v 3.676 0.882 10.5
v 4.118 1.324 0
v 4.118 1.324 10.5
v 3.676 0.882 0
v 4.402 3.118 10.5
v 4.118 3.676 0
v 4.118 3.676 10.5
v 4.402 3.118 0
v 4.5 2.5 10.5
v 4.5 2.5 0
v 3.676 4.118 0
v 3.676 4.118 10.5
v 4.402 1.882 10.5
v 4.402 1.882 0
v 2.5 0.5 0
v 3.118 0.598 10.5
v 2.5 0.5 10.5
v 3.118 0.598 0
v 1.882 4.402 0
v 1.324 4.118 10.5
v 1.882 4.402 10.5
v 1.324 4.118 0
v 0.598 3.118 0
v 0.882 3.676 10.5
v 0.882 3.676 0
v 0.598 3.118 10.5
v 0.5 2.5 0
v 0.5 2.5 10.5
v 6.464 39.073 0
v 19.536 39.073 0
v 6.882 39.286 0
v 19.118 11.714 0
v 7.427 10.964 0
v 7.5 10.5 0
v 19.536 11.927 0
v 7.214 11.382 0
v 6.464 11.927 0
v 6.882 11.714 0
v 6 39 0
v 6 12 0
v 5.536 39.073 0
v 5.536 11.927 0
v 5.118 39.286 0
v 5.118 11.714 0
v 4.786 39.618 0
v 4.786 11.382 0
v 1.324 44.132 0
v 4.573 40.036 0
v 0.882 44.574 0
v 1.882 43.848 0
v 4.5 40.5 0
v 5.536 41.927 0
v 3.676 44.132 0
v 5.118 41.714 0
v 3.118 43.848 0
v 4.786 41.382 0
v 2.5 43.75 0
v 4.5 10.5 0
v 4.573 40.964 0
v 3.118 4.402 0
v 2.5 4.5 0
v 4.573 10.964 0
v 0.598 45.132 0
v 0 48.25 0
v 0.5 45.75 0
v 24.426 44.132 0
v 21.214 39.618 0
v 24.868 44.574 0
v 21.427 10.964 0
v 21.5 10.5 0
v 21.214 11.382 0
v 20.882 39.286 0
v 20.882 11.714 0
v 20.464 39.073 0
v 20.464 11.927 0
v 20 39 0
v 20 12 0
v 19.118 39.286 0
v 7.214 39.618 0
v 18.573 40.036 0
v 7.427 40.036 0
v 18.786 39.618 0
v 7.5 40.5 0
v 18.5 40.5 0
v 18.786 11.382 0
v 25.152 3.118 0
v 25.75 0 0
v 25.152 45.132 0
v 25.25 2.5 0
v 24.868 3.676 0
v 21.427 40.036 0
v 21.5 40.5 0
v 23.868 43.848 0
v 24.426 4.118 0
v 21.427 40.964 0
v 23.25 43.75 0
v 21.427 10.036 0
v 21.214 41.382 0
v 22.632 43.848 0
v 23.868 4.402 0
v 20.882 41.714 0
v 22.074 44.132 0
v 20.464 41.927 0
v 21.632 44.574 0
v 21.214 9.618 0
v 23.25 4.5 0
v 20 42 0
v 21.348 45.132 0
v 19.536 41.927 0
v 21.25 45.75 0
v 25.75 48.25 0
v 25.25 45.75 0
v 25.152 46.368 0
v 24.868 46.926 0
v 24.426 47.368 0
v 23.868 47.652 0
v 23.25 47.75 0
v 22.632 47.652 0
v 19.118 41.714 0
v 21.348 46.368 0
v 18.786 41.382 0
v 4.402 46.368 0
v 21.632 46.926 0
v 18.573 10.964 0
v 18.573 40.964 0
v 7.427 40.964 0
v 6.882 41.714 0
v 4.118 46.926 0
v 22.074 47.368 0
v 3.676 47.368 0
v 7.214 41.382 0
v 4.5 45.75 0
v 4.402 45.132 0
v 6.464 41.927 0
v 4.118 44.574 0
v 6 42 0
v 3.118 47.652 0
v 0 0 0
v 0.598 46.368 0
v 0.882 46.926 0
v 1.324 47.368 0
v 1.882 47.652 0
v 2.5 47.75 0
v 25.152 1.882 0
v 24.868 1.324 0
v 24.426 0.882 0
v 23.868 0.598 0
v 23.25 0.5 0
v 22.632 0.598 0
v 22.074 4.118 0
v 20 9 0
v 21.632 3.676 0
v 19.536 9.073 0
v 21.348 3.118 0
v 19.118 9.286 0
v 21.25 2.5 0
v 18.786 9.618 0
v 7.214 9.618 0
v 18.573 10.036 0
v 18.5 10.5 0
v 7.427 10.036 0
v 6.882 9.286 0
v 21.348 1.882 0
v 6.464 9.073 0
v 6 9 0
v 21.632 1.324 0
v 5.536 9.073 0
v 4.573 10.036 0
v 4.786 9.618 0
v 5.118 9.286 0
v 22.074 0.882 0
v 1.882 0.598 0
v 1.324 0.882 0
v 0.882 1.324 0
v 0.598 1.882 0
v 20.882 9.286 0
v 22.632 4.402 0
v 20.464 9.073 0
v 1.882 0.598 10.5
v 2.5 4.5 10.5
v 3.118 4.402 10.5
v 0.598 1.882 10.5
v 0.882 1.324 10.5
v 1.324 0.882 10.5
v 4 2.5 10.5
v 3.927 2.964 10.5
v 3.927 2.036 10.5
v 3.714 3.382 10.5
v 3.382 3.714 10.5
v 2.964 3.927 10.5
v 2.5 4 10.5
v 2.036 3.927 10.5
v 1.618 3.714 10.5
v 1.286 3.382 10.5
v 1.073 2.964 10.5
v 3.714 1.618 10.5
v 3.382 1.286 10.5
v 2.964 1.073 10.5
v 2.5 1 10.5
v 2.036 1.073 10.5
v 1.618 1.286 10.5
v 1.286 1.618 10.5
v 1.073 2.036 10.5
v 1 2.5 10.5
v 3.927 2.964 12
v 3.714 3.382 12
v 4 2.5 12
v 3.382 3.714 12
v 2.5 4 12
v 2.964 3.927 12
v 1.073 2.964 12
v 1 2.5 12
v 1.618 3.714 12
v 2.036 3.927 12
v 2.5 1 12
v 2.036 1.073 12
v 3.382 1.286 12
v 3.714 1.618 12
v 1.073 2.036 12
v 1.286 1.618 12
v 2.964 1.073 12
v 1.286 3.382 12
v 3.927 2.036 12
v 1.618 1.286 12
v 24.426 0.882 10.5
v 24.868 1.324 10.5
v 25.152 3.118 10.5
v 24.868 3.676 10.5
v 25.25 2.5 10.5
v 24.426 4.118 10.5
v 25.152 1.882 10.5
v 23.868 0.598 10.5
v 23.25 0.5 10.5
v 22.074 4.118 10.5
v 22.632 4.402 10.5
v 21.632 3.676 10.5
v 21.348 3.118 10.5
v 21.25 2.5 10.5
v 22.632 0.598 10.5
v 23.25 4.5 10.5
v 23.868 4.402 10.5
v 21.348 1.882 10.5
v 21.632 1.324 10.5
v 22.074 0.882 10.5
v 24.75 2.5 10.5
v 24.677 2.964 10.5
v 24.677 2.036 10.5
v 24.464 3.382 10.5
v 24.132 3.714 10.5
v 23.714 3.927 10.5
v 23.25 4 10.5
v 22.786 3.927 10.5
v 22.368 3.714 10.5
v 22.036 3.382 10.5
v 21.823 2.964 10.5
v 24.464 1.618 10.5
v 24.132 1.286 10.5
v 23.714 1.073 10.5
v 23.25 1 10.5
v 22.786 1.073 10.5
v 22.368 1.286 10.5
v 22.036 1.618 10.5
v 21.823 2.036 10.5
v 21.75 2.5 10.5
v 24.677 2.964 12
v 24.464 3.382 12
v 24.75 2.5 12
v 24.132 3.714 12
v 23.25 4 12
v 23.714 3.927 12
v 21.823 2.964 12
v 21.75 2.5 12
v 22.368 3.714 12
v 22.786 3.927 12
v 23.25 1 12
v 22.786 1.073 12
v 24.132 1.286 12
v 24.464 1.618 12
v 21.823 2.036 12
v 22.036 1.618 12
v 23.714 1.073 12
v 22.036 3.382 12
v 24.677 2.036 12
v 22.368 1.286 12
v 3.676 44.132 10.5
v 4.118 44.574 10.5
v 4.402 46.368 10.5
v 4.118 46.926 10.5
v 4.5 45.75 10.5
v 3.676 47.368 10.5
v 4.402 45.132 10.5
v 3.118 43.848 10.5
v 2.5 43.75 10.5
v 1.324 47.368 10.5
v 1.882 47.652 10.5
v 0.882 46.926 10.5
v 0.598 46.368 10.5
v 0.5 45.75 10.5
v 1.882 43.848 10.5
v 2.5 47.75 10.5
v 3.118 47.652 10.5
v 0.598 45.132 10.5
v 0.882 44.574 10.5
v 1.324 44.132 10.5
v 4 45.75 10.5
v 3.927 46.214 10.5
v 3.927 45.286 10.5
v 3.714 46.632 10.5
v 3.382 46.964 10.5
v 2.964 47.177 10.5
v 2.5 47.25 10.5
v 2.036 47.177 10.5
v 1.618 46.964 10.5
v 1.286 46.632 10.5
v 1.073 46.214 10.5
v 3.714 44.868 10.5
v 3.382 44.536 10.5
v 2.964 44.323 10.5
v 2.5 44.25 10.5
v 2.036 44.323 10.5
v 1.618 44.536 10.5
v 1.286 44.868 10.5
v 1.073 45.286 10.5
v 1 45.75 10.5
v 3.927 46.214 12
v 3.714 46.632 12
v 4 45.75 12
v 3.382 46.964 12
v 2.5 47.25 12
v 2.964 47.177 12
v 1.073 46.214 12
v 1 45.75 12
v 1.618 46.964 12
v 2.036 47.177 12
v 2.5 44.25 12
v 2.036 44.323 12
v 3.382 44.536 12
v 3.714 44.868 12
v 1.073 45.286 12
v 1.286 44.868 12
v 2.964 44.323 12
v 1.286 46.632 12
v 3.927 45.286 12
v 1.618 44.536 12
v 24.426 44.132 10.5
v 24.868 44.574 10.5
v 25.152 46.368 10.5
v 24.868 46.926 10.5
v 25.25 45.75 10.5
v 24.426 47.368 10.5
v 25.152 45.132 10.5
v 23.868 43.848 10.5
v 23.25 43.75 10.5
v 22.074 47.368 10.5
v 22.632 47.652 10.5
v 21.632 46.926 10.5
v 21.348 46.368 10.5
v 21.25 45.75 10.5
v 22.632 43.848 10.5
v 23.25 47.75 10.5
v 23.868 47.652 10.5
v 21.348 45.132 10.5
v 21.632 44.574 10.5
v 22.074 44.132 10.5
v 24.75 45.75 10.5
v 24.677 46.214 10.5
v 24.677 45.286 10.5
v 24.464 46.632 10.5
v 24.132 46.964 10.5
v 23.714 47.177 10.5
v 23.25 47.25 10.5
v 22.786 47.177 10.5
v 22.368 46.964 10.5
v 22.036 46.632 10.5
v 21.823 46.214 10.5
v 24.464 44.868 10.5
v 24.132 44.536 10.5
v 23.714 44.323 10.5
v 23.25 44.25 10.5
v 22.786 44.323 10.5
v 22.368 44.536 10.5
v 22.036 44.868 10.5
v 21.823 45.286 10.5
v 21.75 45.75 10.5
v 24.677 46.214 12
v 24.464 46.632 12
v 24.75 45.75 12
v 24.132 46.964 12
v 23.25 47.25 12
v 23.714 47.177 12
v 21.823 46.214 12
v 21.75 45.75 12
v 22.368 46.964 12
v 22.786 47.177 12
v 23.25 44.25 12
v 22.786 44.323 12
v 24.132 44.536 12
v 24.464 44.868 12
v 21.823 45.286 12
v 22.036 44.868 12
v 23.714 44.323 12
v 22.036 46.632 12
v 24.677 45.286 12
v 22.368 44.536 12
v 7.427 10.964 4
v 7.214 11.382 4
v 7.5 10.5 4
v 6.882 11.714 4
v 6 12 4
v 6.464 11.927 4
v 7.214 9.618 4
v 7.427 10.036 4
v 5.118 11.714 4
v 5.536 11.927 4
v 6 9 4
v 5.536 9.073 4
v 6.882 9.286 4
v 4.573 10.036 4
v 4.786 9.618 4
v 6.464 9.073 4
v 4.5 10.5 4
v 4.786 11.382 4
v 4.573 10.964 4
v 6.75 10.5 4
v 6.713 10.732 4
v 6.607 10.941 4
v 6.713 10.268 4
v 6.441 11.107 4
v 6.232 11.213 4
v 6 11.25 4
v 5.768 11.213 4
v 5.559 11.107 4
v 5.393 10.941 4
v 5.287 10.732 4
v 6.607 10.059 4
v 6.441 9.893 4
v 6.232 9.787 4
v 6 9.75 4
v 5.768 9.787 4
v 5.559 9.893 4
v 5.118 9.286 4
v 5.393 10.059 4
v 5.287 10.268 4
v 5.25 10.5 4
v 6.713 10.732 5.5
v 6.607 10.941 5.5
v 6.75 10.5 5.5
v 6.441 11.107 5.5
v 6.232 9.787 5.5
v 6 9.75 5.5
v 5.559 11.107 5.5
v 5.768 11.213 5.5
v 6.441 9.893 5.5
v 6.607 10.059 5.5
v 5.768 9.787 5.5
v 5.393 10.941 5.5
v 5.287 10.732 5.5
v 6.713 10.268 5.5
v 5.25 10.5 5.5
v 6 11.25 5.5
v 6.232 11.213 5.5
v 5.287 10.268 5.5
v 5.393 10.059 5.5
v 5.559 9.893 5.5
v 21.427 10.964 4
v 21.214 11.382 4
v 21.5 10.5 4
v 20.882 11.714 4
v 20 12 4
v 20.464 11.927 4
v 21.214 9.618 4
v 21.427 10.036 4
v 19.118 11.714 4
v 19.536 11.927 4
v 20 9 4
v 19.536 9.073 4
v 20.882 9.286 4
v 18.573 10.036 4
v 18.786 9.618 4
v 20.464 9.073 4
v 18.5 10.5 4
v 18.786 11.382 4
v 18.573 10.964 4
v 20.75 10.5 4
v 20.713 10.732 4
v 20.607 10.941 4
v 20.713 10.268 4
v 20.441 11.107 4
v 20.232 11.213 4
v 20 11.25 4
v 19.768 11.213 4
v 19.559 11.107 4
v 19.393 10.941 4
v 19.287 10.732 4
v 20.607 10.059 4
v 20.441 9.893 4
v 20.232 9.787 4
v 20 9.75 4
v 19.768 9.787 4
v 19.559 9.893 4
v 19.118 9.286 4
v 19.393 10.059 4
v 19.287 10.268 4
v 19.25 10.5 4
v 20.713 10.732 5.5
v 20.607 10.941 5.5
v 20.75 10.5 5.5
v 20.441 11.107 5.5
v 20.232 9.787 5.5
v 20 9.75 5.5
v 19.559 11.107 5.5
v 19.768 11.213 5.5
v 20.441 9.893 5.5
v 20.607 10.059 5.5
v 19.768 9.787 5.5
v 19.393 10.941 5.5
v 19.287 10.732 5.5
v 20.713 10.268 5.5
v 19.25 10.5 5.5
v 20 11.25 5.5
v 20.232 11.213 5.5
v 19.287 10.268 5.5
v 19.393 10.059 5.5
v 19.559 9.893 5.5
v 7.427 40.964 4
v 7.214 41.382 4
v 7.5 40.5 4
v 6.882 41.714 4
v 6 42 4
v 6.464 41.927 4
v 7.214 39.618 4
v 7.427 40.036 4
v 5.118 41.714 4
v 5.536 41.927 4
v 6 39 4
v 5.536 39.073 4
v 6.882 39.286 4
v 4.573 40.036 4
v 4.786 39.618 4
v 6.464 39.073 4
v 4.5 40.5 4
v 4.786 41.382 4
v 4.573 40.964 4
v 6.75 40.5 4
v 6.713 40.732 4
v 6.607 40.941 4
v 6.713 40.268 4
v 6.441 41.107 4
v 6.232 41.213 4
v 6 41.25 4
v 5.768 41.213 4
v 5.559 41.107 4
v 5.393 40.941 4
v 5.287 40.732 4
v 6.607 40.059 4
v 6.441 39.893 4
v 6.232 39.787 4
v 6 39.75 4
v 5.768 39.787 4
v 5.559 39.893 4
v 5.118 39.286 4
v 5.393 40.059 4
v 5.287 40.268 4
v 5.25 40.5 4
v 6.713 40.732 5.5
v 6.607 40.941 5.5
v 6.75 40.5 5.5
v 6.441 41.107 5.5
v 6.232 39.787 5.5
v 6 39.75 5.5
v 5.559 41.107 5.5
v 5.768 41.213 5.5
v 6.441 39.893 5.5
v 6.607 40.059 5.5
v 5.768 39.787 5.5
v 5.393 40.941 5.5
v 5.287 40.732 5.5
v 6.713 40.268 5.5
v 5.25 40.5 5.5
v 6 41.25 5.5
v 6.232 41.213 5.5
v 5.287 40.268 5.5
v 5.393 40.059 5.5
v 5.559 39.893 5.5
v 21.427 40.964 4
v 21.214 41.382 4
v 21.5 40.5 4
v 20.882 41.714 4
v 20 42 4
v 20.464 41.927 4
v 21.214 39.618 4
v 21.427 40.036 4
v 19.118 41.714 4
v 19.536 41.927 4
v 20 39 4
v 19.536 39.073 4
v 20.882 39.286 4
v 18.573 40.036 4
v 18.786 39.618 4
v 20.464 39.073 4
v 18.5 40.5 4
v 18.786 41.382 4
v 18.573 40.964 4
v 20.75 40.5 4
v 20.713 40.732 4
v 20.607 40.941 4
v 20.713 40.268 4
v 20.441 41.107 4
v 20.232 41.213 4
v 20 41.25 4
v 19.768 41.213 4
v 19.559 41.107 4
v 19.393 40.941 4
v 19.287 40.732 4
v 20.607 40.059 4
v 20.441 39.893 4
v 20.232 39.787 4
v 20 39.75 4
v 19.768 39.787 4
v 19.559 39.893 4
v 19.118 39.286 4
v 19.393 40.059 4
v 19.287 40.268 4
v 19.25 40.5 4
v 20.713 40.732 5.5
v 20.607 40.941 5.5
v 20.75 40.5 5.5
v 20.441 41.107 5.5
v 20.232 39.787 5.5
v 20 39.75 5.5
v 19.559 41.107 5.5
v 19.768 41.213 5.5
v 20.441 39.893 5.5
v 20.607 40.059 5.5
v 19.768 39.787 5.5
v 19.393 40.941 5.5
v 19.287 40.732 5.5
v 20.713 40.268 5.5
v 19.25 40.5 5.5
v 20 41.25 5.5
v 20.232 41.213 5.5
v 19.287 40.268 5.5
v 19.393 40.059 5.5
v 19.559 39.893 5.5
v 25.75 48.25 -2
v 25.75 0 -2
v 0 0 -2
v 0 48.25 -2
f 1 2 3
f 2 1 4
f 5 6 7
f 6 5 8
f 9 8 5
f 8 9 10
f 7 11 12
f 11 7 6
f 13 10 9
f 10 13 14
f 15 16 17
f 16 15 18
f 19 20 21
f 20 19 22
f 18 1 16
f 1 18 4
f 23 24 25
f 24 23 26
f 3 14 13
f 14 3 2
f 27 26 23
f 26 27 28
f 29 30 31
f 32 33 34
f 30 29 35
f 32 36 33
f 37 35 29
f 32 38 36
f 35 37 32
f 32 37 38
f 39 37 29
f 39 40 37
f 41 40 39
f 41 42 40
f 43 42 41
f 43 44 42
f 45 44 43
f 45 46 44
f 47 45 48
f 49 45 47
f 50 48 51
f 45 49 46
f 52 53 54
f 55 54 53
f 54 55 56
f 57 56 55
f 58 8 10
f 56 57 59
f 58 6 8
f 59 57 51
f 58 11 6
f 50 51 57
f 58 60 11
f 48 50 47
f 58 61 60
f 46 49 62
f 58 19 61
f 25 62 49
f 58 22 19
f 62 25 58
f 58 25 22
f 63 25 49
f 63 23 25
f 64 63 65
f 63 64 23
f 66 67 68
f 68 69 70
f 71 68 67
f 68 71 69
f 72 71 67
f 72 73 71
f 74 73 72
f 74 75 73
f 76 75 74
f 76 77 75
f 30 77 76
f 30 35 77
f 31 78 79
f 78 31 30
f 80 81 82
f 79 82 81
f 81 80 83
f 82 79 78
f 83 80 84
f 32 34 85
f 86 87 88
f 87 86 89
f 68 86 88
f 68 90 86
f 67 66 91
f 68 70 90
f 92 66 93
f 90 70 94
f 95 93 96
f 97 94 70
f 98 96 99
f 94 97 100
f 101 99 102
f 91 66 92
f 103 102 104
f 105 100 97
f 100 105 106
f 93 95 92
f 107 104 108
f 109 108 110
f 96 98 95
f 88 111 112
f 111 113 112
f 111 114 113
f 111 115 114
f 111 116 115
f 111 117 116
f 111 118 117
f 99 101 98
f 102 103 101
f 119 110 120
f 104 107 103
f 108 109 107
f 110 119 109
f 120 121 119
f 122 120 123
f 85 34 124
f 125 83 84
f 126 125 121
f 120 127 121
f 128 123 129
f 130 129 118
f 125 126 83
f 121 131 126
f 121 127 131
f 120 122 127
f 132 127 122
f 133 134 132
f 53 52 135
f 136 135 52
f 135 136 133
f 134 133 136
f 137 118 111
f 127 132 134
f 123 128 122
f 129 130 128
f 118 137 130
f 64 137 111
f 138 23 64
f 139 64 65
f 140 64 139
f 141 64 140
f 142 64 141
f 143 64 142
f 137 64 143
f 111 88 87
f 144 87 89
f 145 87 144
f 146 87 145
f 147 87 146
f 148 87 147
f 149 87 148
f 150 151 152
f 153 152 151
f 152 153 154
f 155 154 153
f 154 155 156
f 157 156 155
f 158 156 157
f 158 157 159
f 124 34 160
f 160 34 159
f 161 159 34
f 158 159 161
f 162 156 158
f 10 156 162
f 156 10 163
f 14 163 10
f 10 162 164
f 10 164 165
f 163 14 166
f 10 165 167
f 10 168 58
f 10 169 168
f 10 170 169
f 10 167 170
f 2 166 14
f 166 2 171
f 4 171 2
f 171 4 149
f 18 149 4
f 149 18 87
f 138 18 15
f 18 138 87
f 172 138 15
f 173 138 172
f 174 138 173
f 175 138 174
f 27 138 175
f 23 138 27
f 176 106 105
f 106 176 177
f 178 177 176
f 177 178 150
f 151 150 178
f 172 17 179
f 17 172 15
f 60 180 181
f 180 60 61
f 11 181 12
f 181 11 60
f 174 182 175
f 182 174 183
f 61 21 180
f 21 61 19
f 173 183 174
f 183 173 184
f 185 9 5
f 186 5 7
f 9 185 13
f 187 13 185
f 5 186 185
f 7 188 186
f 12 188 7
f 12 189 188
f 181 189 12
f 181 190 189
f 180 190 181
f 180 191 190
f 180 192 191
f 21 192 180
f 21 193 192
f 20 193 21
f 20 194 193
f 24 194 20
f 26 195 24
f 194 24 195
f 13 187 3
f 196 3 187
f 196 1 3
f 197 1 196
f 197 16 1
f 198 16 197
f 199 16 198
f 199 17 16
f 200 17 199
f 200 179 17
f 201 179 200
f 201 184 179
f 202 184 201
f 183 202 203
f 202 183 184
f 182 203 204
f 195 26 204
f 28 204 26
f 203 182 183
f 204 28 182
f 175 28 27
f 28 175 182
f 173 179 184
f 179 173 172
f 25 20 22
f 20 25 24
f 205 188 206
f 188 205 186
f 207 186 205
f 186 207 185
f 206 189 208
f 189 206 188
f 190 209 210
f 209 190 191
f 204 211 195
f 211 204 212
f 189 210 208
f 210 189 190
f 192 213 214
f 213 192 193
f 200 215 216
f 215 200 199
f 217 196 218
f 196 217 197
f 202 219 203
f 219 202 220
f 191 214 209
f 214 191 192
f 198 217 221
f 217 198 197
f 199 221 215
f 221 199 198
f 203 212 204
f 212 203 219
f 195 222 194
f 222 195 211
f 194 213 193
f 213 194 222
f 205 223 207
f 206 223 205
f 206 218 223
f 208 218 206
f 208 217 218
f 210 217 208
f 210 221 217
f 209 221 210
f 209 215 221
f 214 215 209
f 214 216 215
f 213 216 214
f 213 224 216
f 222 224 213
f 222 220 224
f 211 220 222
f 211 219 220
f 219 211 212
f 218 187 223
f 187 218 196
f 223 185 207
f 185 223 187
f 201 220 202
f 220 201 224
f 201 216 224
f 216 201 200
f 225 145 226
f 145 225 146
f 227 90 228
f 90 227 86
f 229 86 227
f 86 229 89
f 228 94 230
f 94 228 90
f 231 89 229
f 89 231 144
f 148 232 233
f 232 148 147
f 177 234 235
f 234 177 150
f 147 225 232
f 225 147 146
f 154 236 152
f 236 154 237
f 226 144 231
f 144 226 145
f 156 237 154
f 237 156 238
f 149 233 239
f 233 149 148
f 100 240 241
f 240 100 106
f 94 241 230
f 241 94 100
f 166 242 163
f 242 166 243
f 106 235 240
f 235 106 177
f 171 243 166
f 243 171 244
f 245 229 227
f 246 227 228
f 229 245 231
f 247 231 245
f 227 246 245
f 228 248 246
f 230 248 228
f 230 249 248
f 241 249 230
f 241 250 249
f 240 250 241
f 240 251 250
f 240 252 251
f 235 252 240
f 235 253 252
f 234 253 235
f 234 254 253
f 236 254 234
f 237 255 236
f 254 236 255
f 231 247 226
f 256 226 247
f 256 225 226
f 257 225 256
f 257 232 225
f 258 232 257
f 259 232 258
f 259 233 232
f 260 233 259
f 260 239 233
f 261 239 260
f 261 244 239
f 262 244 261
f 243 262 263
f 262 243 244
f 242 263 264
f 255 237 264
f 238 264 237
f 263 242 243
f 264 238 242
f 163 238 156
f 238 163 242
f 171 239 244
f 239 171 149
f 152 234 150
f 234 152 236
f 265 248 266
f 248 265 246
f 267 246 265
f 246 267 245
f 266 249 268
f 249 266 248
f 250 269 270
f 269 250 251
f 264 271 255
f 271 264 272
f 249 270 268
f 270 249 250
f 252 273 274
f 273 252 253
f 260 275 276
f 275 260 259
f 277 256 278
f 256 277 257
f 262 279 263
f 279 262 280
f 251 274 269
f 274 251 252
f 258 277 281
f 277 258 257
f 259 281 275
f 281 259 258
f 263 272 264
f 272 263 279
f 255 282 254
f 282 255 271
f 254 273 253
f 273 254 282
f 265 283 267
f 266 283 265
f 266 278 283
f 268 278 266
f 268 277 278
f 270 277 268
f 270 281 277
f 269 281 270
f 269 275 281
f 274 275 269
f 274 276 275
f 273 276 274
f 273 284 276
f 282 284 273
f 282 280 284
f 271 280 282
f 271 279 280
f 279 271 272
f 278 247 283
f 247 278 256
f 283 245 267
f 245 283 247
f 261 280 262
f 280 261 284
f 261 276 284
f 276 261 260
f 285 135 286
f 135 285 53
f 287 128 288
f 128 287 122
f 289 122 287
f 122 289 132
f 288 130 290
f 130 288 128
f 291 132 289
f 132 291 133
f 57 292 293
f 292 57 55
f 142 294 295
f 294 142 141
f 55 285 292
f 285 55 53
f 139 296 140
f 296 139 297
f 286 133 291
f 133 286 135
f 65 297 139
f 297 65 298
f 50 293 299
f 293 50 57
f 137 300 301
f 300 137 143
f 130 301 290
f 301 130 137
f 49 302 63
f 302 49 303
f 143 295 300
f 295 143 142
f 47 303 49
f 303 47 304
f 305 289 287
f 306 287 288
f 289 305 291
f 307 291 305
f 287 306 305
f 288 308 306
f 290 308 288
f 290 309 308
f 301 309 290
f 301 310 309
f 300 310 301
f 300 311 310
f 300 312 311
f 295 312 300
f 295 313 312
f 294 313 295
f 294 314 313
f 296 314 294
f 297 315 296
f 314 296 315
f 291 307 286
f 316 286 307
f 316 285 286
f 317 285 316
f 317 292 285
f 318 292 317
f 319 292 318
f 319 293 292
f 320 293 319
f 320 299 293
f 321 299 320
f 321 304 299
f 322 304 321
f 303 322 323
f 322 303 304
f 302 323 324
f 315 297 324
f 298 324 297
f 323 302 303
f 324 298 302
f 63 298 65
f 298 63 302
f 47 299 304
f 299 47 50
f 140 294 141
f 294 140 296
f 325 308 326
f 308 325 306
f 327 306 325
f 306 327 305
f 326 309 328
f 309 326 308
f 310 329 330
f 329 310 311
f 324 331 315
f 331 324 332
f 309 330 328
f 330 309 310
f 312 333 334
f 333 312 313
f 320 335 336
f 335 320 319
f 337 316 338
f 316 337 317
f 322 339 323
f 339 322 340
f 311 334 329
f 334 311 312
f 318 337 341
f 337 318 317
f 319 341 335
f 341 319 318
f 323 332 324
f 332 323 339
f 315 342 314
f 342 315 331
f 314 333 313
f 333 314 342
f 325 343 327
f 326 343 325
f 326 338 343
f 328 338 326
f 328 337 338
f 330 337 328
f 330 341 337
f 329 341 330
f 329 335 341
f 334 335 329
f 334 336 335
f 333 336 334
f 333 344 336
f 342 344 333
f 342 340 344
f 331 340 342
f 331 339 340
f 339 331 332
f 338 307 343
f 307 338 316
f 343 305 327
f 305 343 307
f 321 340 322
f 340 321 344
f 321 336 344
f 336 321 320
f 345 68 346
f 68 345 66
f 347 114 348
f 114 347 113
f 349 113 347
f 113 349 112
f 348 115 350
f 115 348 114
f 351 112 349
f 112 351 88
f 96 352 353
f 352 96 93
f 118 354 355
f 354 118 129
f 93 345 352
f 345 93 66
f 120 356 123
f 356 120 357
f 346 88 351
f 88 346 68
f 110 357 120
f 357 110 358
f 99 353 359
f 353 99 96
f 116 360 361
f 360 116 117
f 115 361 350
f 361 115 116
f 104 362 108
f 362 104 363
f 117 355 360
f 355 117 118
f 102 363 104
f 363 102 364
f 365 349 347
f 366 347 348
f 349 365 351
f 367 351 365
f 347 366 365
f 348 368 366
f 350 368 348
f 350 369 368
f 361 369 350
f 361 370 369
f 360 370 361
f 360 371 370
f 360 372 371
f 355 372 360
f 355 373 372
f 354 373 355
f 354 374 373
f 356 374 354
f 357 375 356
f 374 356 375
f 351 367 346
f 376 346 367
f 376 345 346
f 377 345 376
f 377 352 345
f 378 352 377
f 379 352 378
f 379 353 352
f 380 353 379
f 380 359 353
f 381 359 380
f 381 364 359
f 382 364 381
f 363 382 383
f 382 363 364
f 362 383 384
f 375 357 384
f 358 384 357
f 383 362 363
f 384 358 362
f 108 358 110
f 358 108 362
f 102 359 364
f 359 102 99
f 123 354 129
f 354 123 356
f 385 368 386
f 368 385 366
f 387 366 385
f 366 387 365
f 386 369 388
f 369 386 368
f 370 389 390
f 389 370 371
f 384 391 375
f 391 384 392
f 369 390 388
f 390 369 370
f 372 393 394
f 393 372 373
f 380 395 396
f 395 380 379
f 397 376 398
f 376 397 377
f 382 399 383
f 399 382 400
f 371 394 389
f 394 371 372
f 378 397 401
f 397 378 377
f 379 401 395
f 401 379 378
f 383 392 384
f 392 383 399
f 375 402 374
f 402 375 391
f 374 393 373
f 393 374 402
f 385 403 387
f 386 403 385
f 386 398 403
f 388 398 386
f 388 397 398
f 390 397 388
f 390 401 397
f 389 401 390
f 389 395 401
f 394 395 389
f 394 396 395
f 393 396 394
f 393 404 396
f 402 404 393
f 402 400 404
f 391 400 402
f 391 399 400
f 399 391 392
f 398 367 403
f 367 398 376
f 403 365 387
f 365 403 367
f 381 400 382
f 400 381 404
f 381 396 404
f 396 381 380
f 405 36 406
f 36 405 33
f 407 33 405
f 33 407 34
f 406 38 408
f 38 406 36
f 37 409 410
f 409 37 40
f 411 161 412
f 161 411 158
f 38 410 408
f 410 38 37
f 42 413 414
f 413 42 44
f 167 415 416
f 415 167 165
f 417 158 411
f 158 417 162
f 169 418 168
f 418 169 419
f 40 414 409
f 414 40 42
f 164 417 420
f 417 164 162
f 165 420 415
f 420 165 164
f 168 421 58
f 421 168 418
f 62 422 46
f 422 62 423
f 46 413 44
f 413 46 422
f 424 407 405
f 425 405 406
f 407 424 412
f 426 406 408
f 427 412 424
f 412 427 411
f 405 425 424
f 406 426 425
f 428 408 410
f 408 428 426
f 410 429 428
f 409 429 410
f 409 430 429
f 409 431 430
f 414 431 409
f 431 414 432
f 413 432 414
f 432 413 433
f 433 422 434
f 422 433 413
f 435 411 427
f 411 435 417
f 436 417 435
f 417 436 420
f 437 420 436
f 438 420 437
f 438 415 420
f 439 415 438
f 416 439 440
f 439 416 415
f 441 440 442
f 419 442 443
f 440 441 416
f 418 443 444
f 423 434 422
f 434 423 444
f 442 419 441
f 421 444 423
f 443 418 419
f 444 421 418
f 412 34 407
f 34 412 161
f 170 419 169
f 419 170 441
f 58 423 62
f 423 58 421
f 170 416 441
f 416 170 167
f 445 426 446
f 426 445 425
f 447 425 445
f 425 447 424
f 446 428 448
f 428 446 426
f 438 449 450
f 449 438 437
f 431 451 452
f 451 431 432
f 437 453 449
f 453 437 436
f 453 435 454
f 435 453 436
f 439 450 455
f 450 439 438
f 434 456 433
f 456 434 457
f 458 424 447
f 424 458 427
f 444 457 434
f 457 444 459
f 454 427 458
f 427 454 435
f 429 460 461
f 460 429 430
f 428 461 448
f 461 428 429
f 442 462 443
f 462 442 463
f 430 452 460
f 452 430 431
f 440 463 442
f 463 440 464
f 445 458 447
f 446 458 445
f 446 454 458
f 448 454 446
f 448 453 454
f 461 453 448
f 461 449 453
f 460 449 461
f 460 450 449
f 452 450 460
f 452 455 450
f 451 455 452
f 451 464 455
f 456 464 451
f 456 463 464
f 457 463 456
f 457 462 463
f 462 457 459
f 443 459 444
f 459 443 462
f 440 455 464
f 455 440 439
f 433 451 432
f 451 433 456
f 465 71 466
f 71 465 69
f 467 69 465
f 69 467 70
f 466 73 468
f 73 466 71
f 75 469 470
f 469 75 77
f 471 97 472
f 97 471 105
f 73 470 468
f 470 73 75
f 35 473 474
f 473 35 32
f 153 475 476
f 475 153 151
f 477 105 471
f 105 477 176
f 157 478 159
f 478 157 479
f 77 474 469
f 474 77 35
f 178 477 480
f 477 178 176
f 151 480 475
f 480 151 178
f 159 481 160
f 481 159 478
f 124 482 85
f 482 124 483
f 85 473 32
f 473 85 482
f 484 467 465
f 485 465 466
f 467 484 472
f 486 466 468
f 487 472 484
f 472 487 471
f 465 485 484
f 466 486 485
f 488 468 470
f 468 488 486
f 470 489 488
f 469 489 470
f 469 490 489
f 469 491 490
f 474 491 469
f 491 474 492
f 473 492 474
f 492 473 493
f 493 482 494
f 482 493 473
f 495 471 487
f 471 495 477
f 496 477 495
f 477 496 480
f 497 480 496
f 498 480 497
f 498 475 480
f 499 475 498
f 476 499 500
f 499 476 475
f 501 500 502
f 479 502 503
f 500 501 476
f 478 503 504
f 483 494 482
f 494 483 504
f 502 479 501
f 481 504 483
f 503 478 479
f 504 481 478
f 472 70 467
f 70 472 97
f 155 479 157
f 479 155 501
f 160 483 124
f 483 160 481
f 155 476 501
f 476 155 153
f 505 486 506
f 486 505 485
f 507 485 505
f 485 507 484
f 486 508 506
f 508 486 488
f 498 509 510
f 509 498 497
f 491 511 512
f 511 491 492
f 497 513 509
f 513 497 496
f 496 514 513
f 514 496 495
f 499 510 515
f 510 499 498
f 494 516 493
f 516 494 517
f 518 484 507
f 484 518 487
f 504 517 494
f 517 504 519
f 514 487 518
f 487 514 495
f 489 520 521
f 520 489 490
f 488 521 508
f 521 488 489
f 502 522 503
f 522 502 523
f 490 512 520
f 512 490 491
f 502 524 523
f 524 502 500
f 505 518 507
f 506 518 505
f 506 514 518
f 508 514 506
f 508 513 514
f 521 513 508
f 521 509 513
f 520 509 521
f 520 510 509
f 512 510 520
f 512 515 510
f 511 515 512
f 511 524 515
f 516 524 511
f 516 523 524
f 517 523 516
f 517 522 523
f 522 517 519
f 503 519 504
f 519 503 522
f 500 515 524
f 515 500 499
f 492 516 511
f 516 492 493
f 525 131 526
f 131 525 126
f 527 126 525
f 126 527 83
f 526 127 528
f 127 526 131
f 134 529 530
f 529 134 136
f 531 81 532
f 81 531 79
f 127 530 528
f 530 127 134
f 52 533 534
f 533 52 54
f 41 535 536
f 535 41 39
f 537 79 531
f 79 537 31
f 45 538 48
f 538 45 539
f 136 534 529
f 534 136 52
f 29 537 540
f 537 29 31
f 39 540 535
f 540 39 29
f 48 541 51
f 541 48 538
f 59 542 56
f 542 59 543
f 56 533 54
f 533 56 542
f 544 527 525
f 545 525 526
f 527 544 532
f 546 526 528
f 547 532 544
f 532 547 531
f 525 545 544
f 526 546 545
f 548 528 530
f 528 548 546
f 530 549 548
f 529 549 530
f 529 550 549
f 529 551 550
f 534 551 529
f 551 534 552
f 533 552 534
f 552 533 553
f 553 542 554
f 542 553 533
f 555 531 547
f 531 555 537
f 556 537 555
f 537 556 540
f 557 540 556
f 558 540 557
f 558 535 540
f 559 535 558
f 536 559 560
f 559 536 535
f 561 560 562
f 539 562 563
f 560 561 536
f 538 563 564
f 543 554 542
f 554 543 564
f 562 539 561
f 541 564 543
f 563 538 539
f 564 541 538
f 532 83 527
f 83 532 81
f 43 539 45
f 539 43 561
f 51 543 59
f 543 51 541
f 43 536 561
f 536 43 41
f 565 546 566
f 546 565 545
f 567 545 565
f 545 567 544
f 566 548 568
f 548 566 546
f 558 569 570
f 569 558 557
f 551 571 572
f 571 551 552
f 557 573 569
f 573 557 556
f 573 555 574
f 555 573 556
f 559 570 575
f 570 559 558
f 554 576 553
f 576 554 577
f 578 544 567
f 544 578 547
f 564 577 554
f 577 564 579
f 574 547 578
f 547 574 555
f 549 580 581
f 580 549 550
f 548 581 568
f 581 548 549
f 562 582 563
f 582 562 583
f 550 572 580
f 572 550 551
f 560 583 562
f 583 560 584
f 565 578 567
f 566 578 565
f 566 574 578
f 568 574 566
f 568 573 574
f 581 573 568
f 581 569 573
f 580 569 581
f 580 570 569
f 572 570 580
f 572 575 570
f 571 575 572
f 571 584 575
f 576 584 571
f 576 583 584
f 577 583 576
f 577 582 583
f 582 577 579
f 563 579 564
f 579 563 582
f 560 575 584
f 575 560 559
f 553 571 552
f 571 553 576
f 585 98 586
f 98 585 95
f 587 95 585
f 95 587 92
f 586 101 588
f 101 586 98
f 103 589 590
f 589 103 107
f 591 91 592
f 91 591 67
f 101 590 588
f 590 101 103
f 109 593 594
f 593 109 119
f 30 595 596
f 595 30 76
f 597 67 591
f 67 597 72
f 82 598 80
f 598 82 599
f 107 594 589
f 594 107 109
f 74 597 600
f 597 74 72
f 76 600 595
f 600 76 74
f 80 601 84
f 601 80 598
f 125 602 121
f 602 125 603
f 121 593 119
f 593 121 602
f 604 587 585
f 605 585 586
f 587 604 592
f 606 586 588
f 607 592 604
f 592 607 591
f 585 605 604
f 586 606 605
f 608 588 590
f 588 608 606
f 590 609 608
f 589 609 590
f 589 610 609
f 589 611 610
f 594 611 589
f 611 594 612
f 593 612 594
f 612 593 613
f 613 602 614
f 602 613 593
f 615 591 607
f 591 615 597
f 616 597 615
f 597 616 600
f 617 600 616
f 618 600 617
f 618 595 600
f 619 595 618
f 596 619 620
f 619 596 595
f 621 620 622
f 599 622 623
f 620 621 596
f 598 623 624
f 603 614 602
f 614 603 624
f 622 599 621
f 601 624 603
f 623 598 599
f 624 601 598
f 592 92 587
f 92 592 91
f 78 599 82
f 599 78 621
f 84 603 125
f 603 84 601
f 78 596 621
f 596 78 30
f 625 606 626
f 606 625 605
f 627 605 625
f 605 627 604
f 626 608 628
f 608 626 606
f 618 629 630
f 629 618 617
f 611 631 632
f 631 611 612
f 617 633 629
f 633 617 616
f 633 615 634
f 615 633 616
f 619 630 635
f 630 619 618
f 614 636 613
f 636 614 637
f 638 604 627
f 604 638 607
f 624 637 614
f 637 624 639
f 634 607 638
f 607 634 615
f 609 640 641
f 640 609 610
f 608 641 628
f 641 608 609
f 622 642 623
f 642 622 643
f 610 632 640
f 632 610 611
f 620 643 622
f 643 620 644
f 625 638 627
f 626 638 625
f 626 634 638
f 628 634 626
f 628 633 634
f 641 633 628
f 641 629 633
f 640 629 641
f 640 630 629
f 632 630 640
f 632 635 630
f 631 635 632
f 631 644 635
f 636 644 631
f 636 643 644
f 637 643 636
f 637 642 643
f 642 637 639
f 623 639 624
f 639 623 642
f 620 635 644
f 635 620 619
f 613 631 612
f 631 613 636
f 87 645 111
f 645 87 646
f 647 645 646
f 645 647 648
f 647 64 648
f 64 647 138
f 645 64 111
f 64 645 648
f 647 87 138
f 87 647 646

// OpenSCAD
x = 0; y = 1; z = 2;

rs232_dim = [
    16.0,
    51.0,
    1.5
];

rs232_pegs = [
    [1, 10.5],
    [rs232_dim[x] - 1, 10.5],
    [1, 40.5],
    [rs232_dim[x] - 1, 40.5]
];

rs232_peg_r_inner = 0.75;
rs232_peg_r_outer = 1.5;

esp_dim = [
    25.75,
    48.25,
    1.5
];

esp_peg_offset = 2.5;
esp_pegs = [
    [esp_peg_offset, esp_peg_offset],
    [esp_dim[x] - esp_peg_offset, esp_peg_offset],
    [esp_peg_offset, esp_dim[y] - esp_peg_offset],
    [esp_dim[x] - esp_peg_offset, esp_dim[y] - esp_peg_offset]
];

esp_peg_r_inner = 1.5;
esp_peg_r_outer = 2;

placeholders=false;
board(esp_dim, esp_pegs, esp_peg_r_inner, esp_peg_r_outer, 10.5);
translate([5,0,0])
board(rs232_dim, rs232_pegs, rs232_peg_r_inner, rs232_peg_r_outer, 4);

translate([0,0,-2]) {
    cube([esp_dim[x], esp_dim[y], 2]);
}

module peg(inner, outer, h1, h2) {
    cylinder(r=outer, h=h1, center=false, $fn=20);
    cylinder(r=inner, h=h2, center=false, $fn=20);
}

module board(dim, pegs, r_inner, r_outer, h) {
    if (placeholders) {
        color("green")
            translate([0,0,h])
                cube(dim, center=false);
    }
    for (i=pegs) {
        translate(i)
            peg(r_inner, r_outer, h, h+1.5);
    }
}
        
